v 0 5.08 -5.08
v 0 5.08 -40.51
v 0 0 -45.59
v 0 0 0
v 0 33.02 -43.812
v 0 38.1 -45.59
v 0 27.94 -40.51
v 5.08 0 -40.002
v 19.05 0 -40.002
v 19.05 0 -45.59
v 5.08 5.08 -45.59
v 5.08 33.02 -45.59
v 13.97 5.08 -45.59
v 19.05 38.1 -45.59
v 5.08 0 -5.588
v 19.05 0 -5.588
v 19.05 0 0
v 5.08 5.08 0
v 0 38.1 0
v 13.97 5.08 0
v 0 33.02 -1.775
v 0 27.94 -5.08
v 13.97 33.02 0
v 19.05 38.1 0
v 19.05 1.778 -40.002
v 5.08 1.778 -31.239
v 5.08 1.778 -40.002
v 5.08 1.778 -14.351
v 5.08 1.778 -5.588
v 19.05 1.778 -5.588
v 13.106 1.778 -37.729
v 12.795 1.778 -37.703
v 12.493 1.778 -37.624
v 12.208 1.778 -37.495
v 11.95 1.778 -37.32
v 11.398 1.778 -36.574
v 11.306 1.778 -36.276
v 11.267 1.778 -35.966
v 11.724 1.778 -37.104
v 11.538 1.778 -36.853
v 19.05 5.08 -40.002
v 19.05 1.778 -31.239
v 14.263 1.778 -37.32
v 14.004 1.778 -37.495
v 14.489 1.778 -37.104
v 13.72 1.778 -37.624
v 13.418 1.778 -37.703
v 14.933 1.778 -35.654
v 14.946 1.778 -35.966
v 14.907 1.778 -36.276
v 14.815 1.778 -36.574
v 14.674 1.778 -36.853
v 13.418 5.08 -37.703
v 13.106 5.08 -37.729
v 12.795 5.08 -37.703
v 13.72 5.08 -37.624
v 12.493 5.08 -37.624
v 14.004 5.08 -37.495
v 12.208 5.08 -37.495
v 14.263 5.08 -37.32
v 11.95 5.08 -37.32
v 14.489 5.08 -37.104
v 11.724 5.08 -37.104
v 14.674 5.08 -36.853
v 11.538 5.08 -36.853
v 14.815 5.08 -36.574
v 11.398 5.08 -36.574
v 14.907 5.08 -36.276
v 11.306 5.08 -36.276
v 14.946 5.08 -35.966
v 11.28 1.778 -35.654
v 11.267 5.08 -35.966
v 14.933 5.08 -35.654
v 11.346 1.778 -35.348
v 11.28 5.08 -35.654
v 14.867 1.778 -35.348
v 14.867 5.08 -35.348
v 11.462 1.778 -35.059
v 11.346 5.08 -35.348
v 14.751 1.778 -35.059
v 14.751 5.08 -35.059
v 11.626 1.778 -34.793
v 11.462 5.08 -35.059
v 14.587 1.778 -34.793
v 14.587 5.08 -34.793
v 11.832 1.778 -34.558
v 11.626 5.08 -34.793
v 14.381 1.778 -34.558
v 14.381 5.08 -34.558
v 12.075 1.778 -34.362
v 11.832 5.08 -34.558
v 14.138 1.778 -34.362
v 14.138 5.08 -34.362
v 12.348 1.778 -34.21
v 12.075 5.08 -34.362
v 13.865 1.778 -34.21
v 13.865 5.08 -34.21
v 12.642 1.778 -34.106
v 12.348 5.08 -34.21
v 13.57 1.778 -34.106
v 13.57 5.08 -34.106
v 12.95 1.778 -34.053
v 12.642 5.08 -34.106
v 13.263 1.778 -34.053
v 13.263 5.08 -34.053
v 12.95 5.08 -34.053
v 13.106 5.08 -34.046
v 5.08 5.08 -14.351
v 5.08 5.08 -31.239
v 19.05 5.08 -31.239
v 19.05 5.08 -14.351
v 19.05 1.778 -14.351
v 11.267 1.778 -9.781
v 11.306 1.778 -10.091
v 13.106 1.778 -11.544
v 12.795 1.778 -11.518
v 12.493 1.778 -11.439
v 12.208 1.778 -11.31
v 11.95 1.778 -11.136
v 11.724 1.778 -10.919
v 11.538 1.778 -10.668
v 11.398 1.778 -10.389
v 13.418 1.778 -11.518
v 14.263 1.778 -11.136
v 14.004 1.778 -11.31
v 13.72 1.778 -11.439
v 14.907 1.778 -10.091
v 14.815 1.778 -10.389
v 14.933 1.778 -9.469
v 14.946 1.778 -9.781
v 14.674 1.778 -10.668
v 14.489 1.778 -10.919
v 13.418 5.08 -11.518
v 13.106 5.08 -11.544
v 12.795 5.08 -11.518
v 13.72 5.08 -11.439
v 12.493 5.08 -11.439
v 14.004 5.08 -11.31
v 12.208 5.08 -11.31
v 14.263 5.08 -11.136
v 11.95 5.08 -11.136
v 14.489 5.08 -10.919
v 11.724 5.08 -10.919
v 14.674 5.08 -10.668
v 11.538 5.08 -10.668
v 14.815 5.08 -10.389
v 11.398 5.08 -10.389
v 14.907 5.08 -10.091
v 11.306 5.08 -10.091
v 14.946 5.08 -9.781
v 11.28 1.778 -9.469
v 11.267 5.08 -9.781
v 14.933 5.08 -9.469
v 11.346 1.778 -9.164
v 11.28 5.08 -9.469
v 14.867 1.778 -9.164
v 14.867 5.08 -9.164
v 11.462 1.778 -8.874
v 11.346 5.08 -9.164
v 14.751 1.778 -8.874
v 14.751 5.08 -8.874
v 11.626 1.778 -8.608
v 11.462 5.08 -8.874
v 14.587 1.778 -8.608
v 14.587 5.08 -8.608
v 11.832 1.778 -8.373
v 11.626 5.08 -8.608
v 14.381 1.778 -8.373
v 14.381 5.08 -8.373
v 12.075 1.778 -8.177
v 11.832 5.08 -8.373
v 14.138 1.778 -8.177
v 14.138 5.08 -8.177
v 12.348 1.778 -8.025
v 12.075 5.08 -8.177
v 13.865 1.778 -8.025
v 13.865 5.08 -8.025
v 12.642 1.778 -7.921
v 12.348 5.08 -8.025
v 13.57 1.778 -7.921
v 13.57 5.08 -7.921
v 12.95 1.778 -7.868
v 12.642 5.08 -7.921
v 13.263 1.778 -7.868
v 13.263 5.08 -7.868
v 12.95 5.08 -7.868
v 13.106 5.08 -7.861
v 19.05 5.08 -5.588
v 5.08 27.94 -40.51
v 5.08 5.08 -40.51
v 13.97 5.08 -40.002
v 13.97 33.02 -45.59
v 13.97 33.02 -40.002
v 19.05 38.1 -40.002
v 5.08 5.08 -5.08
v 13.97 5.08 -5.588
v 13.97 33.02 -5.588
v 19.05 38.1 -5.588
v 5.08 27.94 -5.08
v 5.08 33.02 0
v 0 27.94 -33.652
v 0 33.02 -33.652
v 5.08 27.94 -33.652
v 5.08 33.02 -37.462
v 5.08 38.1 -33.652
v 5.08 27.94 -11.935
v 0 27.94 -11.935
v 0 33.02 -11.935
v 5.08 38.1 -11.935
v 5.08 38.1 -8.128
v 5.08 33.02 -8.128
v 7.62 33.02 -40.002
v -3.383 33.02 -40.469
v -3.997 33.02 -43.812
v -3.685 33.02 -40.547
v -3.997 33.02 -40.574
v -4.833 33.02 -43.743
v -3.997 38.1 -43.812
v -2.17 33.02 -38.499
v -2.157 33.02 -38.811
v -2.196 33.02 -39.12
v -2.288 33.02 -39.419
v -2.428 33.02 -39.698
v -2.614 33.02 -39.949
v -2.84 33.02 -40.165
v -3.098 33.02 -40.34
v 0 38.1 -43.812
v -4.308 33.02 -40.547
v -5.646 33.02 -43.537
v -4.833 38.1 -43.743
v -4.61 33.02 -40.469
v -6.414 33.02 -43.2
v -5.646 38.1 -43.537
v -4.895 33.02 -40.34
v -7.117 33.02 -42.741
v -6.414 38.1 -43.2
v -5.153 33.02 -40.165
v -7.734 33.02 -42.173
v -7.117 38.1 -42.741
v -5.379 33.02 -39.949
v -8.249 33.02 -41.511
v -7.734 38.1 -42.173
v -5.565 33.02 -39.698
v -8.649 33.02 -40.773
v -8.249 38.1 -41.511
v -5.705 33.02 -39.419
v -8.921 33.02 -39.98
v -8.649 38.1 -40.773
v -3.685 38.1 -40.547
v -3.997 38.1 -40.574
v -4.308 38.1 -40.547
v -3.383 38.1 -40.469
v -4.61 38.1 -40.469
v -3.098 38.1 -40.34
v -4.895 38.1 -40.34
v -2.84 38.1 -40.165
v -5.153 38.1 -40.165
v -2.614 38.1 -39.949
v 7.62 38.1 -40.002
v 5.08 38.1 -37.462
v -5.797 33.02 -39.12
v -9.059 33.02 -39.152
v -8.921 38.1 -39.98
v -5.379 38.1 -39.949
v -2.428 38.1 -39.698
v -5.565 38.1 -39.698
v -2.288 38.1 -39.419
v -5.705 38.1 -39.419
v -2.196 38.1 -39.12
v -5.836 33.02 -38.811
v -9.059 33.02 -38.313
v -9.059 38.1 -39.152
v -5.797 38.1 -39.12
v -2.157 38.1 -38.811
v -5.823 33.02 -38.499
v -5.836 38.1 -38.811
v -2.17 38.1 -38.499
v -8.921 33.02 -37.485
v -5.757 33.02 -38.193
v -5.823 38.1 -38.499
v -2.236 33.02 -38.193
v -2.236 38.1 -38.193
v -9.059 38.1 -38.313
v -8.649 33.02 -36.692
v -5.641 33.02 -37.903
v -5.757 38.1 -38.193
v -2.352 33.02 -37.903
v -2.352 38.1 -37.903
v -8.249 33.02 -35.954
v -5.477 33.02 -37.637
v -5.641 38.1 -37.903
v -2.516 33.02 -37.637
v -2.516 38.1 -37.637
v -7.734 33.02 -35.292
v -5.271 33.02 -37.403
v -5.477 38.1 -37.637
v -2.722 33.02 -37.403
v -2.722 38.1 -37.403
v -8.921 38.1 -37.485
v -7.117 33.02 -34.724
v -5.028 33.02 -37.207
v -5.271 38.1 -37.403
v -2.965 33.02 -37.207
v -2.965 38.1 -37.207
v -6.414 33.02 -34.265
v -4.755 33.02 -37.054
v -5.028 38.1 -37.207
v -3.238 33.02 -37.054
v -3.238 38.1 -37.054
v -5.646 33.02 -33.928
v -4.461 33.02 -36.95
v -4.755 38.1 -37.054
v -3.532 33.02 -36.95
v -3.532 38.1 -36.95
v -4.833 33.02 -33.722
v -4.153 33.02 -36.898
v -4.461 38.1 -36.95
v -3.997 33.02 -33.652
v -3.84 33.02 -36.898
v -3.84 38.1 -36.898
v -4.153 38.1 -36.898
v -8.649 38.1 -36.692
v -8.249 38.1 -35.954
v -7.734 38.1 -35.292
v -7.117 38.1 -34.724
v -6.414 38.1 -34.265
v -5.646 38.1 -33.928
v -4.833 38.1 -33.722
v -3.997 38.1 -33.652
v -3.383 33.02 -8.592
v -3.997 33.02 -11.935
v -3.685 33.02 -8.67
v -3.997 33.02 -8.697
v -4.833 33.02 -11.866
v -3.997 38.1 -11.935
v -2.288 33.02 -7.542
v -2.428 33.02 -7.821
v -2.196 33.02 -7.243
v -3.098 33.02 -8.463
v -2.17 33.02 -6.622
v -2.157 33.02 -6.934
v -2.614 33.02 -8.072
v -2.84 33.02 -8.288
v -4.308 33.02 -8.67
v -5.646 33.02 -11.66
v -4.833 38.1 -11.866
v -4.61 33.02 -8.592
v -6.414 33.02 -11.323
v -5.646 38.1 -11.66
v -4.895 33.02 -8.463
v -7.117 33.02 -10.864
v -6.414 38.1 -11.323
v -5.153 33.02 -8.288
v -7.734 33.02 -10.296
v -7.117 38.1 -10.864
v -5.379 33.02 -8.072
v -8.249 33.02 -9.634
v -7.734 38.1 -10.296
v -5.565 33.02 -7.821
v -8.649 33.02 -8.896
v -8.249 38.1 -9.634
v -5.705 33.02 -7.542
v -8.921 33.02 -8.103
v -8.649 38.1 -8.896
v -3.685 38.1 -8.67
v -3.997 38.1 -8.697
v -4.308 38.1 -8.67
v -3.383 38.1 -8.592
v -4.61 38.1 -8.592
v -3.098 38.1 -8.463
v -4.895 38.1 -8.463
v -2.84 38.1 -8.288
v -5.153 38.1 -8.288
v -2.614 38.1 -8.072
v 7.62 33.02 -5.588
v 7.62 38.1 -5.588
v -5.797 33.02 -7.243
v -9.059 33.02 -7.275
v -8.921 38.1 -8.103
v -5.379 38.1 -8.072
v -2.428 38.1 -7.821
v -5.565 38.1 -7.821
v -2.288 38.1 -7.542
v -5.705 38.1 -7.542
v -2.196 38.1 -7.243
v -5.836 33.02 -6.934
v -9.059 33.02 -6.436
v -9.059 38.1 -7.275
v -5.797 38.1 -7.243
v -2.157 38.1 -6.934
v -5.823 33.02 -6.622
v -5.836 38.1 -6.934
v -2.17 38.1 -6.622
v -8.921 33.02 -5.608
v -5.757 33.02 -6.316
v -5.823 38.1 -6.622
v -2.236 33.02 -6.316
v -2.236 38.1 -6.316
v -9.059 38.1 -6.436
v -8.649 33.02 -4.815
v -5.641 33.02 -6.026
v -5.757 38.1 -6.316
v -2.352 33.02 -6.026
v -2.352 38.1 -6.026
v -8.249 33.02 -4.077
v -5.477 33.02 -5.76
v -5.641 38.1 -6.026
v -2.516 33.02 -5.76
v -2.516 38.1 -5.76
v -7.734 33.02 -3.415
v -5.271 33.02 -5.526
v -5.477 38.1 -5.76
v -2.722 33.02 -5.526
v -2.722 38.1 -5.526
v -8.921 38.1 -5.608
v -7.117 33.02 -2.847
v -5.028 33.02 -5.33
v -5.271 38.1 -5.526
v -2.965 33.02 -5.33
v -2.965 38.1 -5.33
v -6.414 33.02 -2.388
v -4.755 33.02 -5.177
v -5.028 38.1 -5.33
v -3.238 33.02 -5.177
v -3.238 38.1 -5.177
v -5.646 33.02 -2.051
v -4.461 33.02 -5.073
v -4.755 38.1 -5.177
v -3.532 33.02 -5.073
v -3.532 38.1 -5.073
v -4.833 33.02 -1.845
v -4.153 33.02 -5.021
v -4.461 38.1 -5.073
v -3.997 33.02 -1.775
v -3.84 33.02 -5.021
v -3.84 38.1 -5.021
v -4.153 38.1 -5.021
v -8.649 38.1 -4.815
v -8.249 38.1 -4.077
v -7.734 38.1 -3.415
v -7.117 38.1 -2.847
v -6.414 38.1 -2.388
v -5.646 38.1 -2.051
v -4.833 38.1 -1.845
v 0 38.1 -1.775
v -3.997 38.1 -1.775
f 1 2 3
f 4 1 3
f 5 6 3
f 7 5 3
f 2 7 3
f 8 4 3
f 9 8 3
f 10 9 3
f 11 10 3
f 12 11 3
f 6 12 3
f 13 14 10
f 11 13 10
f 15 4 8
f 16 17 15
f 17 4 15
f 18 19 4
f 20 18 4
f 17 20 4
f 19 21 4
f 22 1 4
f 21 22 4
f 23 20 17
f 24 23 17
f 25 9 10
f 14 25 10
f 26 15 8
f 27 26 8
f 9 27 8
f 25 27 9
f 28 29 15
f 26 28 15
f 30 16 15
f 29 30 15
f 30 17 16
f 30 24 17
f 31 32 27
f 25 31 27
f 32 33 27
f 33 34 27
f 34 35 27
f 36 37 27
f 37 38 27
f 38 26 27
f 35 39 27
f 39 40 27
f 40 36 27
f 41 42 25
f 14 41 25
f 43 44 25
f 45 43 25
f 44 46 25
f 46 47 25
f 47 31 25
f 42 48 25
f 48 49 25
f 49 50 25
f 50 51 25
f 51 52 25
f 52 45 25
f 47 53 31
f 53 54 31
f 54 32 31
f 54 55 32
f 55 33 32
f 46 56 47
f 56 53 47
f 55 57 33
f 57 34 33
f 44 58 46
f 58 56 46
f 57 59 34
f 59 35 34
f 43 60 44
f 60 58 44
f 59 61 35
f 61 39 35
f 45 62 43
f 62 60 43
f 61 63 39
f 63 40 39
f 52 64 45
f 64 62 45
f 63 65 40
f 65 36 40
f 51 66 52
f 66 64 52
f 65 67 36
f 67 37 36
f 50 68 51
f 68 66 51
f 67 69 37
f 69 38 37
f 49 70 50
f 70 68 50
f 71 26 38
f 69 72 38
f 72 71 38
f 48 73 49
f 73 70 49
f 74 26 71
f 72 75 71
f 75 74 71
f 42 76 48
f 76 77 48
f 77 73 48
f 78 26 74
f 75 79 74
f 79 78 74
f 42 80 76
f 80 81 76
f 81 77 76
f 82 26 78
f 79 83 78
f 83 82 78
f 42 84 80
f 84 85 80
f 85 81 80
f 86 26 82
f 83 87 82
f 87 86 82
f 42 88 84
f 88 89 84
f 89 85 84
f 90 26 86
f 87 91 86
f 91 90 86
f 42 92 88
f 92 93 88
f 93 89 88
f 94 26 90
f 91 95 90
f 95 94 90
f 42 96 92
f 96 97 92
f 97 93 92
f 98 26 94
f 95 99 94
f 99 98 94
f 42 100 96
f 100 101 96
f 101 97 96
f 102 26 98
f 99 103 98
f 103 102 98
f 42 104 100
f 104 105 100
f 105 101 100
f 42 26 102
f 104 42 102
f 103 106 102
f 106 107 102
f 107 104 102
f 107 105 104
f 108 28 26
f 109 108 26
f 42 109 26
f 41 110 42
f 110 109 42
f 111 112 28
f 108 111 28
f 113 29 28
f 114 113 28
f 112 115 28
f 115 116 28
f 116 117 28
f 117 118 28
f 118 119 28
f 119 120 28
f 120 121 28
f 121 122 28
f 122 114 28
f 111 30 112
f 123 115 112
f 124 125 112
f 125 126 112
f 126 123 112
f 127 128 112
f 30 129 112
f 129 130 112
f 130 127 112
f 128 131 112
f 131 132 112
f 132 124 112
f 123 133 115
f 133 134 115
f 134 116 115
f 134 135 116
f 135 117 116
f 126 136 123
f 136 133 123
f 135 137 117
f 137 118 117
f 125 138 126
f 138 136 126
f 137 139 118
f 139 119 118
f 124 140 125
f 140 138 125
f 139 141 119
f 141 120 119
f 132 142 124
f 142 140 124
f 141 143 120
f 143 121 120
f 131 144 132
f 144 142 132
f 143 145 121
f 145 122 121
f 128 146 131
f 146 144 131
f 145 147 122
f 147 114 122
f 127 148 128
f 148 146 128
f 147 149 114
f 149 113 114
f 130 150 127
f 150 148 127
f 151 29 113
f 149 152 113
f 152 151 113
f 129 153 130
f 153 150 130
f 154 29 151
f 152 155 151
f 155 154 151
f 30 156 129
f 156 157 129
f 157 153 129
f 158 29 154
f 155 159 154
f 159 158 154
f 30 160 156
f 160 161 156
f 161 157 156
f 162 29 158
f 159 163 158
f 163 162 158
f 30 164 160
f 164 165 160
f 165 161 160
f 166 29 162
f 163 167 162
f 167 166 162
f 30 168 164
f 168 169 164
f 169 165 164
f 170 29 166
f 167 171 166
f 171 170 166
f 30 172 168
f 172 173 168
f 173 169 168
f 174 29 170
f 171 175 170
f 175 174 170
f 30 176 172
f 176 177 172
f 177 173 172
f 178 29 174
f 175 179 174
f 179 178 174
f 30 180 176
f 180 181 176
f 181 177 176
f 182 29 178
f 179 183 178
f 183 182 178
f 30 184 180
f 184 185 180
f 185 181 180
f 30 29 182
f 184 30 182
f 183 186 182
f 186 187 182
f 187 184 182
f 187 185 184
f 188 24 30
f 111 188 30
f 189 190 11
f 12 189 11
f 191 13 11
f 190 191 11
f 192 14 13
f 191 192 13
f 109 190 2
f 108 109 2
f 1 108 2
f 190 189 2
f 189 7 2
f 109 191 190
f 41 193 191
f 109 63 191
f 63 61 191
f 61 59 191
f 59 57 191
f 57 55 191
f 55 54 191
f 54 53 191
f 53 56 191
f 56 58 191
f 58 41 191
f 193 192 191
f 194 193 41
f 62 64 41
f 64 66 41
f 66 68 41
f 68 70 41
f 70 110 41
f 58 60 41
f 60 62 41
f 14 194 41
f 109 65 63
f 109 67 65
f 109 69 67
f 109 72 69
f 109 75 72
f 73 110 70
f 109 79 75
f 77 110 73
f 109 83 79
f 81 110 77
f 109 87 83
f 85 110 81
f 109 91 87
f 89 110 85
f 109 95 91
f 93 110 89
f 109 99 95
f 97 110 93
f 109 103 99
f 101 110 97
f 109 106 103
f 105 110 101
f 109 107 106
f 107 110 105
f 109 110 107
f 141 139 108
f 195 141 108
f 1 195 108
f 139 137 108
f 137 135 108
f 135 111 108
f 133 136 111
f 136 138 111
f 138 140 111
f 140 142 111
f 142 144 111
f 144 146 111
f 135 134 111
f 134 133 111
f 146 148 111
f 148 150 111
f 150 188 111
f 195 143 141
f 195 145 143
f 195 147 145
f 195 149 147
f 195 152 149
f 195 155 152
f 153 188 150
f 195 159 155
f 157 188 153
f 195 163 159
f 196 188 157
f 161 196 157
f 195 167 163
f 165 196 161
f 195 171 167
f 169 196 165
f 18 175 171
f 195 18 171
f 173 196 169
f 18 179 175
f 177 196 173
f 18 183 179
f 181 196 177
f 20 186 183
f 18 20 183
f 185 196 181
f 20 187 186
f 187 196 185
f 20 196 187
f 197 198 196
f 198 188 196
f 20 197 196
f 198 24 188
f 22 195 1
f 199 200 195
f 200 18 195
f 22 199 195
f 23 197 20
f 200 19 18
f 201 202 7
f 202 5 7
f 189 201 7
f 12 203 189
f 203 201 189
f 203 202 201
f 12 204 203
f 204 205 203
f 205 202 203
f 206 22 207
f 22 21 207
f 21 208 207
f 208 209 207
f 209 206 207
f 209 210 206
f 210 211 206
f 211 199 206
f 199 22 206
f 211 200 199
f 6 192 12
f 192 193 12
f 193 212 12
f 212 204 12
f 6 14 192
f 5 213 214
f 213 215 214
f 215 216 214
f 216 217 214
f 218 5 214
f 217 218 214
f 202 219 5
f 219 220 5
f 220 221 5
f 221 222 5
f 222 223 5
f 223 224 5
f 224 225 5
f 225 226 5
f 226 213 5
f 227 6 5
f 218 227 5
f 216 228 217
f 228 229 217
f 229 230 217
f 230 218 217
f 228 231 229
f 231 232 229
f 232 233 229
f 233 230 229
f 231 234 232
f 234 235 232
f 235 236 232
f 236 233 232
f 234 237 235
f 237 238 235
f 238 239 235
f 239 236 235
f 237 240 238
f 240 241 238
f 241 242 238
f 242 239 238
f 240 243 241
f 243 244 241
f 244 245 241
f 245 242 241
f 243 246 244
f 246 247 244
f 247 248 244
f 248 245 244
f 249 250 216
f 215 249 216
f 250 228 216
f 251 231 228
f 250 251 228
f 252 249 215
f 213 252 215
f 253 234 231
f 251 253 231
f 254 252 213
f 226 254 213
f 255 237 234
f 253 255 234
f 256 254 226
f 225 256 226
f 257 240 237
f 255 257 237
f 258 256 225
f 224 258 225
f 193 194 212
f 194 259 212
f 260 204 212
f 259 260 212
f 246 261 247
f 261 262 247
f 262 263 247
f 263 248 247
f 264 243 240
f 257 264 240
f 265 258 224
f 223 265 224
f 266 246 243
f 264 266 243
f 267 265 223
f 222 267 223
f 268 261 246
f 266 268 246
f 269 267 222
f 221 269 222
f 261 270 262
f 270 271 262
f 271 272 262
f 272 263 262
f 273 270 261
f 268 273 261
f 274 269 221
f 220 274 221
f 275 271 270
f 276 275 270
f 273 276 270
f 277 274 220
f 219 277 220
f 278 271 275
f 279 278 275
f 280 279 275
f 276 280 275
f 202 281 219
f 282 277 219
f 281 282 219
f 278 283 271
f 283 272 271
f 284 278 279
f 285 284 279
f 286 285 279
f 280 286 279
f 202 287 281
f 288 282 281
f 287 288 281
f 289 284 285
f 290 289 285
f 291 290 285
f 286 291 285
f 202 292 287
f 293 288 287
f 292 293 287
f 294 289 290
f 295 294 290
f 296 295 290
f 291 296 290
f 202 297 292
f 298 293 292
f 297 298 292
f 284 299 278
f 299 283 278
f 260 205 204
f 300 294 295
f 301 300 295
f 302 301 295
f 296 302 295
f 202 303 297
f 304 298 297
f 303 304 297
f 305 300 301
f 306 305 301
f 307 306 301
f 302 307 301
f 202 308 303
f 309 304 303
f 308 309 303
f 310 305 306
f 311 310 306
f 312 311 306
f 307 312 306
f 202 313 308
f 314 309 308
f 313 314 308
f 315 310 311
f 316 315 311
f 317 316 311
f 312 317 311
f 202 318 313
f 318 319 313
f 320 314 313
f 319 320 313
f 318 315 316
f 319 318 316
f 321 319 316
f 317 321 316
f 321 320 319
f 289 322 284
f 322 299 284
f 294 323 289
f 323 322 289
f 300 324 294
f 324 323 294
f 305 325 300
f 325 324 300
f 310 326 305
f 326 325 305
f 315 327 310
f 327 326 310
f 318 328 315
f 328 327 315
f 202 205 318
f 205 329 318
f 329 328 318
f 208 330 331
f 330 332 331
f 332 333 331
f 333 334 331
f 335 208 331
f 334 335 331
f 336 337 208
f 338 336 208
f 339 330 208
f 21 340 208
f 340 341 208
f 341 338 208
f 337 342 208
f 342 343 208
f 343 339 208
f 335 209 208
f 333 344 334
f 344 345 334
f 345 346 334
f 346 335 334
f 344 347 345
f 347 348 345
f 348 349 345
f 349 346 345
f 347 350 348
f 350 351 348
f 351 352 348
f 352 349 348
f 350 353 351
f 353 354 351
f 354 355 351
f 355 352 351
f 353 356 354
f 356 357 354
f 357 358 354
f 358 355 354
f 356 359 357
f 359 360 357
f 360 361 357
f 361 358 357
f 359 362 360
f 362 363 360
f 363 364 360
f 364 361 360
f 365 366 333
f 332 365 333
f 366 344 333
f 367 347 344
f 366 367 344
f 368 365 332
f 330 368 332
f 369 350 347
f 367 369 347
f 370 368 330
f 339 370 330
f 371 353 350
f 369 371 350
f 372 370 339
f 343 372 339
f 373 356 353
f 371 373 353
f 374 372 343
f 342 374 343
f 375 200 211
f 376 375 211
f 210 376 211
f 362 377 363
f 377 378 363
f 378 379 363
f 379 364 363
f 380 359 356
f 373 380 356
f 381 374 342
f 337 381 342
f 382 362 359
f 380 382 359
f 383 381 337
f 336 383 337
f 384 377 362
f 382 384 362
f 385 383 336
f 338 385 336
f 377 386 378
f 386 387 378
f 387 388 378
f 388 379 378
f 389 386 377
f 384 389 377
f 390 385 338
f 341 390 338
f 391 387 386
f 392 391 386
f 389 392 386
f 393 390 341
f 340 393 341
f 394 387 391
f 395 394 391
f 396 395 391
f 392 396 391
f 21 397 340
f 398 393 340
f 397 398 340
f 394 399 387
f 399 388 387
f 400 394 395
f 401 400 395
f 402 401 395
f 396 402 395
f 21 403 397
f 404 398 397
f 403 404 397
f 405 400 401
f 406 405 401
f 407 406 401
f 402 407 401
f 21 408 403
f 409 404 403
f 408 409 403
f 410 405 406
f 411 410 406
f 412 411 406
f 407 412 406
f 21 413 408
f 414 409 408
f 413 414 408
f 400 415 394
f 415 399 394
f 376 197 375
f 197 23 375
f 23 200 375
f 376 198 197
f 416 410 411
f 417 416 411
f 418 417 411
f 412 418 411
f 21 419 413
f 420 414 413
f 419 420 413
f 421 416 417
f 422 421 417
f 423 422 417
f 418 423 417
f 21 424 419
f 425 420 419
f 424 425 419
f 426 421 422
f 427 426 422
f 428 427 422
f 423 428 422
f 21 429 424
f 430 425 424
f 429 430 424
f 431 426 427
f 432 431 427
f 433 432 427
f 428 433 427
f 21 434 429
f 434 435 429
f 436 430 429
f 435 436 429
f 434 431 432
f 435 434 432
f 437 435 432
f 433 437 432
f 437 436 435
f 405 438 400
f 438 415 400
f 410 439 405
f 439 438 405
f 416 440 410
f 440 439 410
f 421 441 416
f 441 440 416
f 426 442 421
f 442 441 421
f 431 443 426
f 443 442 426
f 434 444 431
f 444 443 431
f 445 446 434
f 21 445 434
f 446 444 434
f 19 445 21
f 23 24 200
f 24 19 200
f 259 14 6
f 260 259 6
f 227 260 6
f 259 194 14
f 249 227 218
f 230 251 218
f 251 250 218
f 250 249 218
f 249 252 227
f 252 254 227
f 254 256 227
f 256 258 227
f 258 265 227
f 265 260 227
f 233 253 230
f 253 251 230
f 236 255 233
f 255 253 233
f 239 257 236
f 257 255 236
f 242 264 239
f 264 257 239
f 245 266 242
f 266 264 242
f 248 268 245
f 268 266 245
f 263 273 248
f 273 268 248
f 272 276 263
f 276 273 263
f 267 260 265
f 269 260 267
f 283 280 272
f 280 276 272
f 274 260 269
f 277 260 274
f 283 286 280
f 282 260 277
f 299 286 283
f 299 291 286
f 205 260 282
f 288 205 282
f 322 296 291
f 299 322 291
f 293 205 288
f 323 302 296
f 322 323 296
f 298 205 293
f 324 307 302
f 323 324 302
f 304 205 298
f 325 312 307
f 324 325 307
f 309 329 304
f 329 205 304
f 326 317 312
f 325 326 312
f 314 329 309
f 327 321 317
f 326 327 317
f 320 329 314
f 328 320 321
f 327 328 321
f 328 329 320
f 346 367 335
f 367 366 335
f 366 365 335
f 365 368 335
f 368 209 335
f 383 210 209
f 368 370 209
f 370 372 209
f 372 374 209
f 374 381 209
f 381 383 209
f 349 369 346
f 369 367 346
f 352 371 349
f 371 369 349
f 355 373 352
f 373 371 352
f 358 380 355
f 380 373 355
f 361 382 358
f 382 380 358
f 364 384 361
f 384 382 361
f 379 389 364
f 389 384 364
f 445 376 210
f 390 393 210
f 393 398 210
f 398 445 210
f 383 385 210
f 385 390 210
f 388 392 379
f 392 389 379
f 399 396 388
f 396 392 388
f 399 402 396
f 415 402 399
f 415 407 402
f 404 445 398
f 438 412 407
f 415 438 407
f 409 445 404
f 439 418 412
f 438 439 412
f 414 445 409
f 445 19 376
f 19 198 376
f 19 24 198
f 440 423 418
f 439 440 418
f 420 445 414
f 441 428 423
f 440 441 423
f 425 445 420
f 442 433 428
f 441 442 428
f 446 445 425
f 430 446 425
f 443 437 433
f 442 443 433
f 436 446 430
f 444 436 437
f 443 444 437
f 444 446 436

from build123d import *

# Parameters (mm, degrees)
BOSS_EXTRUDE1_DEPTH   = 38.1
BOSS_EXTRUDE1_2_DEPTH = 38.1
SKETCH2_W             = 7.62
SKETCH2_H             = 5.08
BOSS_EXTRUDE2_DEPTH   = 7.62
SKETCH3_R             = 1.8415
CUT_EXTRUDE1_DEPTH    = 60.428216724
FILLET1_R             = 2.54
FILLET2_R             = 2.54
SKETCH5_W             = 18.161
SKETCH5_H             = 5.08
SKETCH5_W_2           = 21.209
BOSS_EXTRUDE3_DEPTH   = 5.08
SKETCH6_W             = 8.89
SKETCH6_H             = 27.94
CUT_EXTRUDE2_DEPTH    = 63.393930338
SKETCH8_W             = 8.763
SKETCH8_H             = 3.302
BOSS_EXTRUDE4_DEPTH   = 13.97
SKETCH11_R            = 1.8415
CUT_EXTRUDE4_DEPTH    = 62.324385256
CUT_EXTRUDE5_START    = -5.08
SKETCH15_W            = 35.43046
SKETCH15_H            = 22.86
CUT_EXTRUDE5_DEPTH    = 5.08
SKETCH16_R            = 1.8415
BOSS_EXTRUDE5_DEPTH   = 5.08
SKETCH17_W            = 5.08
SKETCH17_H            = 21.717
CUT_EXTRUDE6_DEPTH    = 10.16
CHAMFER1_SIZE         = 2.54


with BuildPart() as part:
    # Sketch1 → Boss-Extrude1 (new body)
    with BuildSketch(Plane(origin=(0, 0, 0), x_dir=(1, 0, 0), z_dir=(0, 1, 0))):
        Polygon((0, 0), (0, 13.71346), (5.08, 13.71346), (5.08, 5.588), (19.05, 5.588), (19.05, 0), align=None)
    extrude(amount=BOSS_EXTRUDE1_DEPTH)

    # Sketch2 → Boss-Extrude2 (add)
    with BuildSketch(Plane.ZY):
        with Locations((-6.85546, 35.56)):
            Rectangle(SKETCH2_W, SKETCH2_H)
        with Locations((-38.73246, 35.56)):
            Rectangle(SKETCH2_W, SKETCH2_H)
    extrude(amount=BOSS_EXTRUDE2_DEPTH)


with BuildPart() as body_2:
    # Sketch1 → Boss-Extrude1 2 (new body)
    with BuildSketch(Plane(origin=(0, 0, 0), x_dir=(1, 0, 0), z_dir=(0, 1, 0))):
        Polygon((0, 31.87446), (5.08, 31.87446), (5.08, 40.00246), (19.05, 40.00246), (19.05, 45.59046), (0, 45.59046), align=None)
    extrude(amount=BOSS_EXTRUDE1_2_DEPTH)



with BuildPart() as boss_extrude2_piece_1:
    # of the separate pieces the step leaves, piece 1, a body of its own (boss_extrude2_pieces)
    add(part.part.solids().sort_by_distance((0, 0, 0))[0])


with BuildPart() as boss_extrude2_piece_2:
    # of the separate pieces the step leaves, piece 2, a body of its own (boss_extrude2_pieces)
    add(part.part.solids().sort_by_distance((0, 38.1, -34.92246))[0])


with BuildPart() as cut_extrude1_tool:
    # Sketch3 → Cut-Extrude1 (new, through all)
    with BuildSketch(Plane(origin=(0, 33.02, 0), x_dir=(-1, 0, 0), z_dir=(0, -1, 0))):
        with Locations(Location((3.996511692, 6.85546, 0), (0, 0, 90))):
            Circle(SKETCH3_R)
        with Locations(Location((3.996511692, 38.73246, 0), (0, 0, 90))):
            Circle(SKETCH3_R)
    extrude(amount=-CUT_EXTRUDE1_DEPTH)


with BuildPart() as boss_extrude2_piece_1_1:
    add(boss_extrude2_piece_1.part)

    # Cut-Extrude1: cut by cut_extrude1_tool
    add(cut_extrude1_tool.part, mode=Mode.SUBTRACT)

    # Fillet1
    fillet1_edges = [boss_extrude2_piece_1_1.edges().sort_by_distance(p)[0] for p in [
        (-7.62, 35.56, -10.66546),
        (-7.62, 35.56, -3.04546),
    ]]
    fillet(fillet1_edges, radius=FILLET1_R)


with BuildPart() as boss_extrude2_piece_2_1:
    add(boss_extrude2_piece_2.part)

    # Cut-Extrude1: cut by cut_extrude1_tool
    add(cut_extrude1_tool.part, mode=Mode.SUBTRACT)

    # Fillet2
    fillet2_edges = [boss_extrude2_piece_2_1.edges().sort_by_distance(p)[0] for p in [
        (-7.62, 35.56, -42.54246),
        (-7.62, 35.56, -34.92246),
    ]]
    fillet(fillet2_edges, radius=FILLET2_R)


with BuildPart() as body_2_1:
    add(body_2.part)

    add(boss_extrude2_piece_1_1.part)  # Boss-Extrude3 merges Boss-Extrude2 piece 1

    add(boss_extrude2_piece_2_1.part)  # Boss-Extrude3 merges Boss-Extrude2 piece 2
    # Sketch5 → Boss-Extrude3 (add)
    with BuildSketch(Plane.ZY):
        with Locations((-22.79396, 2.54)):
            Rectangle(SKETCH5_W, SKETCH5_H)
        with Locations((-24.31796, 30.48)):
            Rectangle(SKETCH5_W_2, SKETCH5_H)
    extrude(amount=-BOSS_EXTRUDE3_DEPTH)

    # Sketch6 → Cut-Extrude2 (cut, through all)
    with BuildSketch(Plane.XY):
        with Locations((9.525, 19.05)):
            Rectangle(SKETCH6_W, SKETCH6_H)
    extrude(amount=-CUT_EXTRUDE2_DEPTH, mode=Mode.SUBTRACT)

    # Sketch8 → Boss-Extrude4 (add)
    with BuildSketch(Plane(origin=(5.08, 0, 0), x_dir=(0, 0, -1), z_dir=(1, 0, 0))):
        with Locations((9.9695, 3.429)):
            Rectangle(SKETCH8_W, SKETCH8_H)
        with Locations((35.62096, 3.429)):
            Rectangle(SKETCH8_W, SKETCH8_H)
    extrude(amount=BOSS_EXTRUDE4_DEPTH)

    # Sketch11 → Cut-Extrude4 (cut, through all)
    with BuildSketch(Plane.XZ.offset(-1.778)):
        with Locations(Location((13.1064, -9.7028, 0), (0, 0, 270))):
            Circle(SKETCH11_R)
        with Locations(Location((13.1064, -35.88766, 0), (0, 0, 270))):
            Circle(SKETCH11_R)
    extrude(amount=-CUT_EXTRUDE4_DEPTH, mode=Mode.SUBTRACT)

    # Sketch15 → Cut-Extrude5 (cut)
    with BuildSketch(Plane.ZY.offset(CUT_EXTRUDE5_START)):
        with Locations((-22.79523, 16.51)):
            Rectangle(SKETCH15_W, SKETCH15_H)
    extrude(amount=CUT_EXTRUDE5_DEPTH, mode=Mode.SUBTRACT)

    # Sketch16 → Boss-Extrude5 (add)
    # profile 1 of 2: a face of its own
    with BuildSketch(Plane(origin=(0, 38.1, 0), x_dir=(1, 0, 0), z_dir=(0, 1, 0))):
        with BuildLine():
            Line((-3.996511692, 43.81246), (3.107709624, 43.81246))
            Line((3.107709624, 43.81246), (3.042520574, 33.65246))
            Line((3.042520574, 33.65246), (-3.996511692, 33.65246))
            ThreePointArc((-3.996511692, 33.65246), (-9.076511692, 38.73246), (-3.996511692, 43.81246))
        make_face()
        with Locations(Location((-3.996511692, 38.73246, 0), (0, 0, 90))):
            Circle(SKETCH16_R, mode=Mode.SUBTRACT)
    # profile 2 of 2: a face of its own
    with BuildSketch(Plane(origin=(0, 38.1, 0), x_dir=(1, 0, 0), z_dir=(0, 1, 0))):
        with BuildLine():
            Line((-3.996511692, 11.93546), (2.83798993, 11.93546))
            ThreePointArc((2.83798993, 11.93546), (2.870583784, 11.935355436), (2.903176296, 11.935041748))
            Line((2.903176296, 11.935041748), (2.83798993, 1.77546))
            Line((2.83798993, 1.77546), (-3.996511692, 1.77546))
            ThreePointArc((-3.996511692, 1.77546), (-9.076511692, 6.85546), (-3.996511692, 11.93546))
        make_face()
        with Locations(Location((-3.996511692, 6.85546, 0), (0, 0, 90))):
            Circle(SKETCH16_R, mode=Mode.SUBTRACT)
    extrude(amount=-BOSS_EXTRUDE5_DEPTH)

    # Sketch17 → Cut-Extrude6 (cut)
    with BuildSketch(Plane(origin=(0, 38.1, 0), x_dir=(1, 0, 0), z_dir=(0, 1, 0))):
        with Locations((2.54, 22.79396)):
            Rectangle(SKETCH17_W, SKETCH17_H)
    extrude(amount=-CUT_EXTRUDE6_DEPTH, mode=Mode.SUBTRACT)

    # Chamfer1
    chamfer1_edges = [body_2_1.edges().sort_by_distance(p)[0] for p in [
        (5.08, 35.56, -40.00246),
        (5.08, 35.56, -5.588),
    ]]
    chamfer(chamfer1_edges, length=CHAMFER1_SIZE)


solid = body_2_1.part
